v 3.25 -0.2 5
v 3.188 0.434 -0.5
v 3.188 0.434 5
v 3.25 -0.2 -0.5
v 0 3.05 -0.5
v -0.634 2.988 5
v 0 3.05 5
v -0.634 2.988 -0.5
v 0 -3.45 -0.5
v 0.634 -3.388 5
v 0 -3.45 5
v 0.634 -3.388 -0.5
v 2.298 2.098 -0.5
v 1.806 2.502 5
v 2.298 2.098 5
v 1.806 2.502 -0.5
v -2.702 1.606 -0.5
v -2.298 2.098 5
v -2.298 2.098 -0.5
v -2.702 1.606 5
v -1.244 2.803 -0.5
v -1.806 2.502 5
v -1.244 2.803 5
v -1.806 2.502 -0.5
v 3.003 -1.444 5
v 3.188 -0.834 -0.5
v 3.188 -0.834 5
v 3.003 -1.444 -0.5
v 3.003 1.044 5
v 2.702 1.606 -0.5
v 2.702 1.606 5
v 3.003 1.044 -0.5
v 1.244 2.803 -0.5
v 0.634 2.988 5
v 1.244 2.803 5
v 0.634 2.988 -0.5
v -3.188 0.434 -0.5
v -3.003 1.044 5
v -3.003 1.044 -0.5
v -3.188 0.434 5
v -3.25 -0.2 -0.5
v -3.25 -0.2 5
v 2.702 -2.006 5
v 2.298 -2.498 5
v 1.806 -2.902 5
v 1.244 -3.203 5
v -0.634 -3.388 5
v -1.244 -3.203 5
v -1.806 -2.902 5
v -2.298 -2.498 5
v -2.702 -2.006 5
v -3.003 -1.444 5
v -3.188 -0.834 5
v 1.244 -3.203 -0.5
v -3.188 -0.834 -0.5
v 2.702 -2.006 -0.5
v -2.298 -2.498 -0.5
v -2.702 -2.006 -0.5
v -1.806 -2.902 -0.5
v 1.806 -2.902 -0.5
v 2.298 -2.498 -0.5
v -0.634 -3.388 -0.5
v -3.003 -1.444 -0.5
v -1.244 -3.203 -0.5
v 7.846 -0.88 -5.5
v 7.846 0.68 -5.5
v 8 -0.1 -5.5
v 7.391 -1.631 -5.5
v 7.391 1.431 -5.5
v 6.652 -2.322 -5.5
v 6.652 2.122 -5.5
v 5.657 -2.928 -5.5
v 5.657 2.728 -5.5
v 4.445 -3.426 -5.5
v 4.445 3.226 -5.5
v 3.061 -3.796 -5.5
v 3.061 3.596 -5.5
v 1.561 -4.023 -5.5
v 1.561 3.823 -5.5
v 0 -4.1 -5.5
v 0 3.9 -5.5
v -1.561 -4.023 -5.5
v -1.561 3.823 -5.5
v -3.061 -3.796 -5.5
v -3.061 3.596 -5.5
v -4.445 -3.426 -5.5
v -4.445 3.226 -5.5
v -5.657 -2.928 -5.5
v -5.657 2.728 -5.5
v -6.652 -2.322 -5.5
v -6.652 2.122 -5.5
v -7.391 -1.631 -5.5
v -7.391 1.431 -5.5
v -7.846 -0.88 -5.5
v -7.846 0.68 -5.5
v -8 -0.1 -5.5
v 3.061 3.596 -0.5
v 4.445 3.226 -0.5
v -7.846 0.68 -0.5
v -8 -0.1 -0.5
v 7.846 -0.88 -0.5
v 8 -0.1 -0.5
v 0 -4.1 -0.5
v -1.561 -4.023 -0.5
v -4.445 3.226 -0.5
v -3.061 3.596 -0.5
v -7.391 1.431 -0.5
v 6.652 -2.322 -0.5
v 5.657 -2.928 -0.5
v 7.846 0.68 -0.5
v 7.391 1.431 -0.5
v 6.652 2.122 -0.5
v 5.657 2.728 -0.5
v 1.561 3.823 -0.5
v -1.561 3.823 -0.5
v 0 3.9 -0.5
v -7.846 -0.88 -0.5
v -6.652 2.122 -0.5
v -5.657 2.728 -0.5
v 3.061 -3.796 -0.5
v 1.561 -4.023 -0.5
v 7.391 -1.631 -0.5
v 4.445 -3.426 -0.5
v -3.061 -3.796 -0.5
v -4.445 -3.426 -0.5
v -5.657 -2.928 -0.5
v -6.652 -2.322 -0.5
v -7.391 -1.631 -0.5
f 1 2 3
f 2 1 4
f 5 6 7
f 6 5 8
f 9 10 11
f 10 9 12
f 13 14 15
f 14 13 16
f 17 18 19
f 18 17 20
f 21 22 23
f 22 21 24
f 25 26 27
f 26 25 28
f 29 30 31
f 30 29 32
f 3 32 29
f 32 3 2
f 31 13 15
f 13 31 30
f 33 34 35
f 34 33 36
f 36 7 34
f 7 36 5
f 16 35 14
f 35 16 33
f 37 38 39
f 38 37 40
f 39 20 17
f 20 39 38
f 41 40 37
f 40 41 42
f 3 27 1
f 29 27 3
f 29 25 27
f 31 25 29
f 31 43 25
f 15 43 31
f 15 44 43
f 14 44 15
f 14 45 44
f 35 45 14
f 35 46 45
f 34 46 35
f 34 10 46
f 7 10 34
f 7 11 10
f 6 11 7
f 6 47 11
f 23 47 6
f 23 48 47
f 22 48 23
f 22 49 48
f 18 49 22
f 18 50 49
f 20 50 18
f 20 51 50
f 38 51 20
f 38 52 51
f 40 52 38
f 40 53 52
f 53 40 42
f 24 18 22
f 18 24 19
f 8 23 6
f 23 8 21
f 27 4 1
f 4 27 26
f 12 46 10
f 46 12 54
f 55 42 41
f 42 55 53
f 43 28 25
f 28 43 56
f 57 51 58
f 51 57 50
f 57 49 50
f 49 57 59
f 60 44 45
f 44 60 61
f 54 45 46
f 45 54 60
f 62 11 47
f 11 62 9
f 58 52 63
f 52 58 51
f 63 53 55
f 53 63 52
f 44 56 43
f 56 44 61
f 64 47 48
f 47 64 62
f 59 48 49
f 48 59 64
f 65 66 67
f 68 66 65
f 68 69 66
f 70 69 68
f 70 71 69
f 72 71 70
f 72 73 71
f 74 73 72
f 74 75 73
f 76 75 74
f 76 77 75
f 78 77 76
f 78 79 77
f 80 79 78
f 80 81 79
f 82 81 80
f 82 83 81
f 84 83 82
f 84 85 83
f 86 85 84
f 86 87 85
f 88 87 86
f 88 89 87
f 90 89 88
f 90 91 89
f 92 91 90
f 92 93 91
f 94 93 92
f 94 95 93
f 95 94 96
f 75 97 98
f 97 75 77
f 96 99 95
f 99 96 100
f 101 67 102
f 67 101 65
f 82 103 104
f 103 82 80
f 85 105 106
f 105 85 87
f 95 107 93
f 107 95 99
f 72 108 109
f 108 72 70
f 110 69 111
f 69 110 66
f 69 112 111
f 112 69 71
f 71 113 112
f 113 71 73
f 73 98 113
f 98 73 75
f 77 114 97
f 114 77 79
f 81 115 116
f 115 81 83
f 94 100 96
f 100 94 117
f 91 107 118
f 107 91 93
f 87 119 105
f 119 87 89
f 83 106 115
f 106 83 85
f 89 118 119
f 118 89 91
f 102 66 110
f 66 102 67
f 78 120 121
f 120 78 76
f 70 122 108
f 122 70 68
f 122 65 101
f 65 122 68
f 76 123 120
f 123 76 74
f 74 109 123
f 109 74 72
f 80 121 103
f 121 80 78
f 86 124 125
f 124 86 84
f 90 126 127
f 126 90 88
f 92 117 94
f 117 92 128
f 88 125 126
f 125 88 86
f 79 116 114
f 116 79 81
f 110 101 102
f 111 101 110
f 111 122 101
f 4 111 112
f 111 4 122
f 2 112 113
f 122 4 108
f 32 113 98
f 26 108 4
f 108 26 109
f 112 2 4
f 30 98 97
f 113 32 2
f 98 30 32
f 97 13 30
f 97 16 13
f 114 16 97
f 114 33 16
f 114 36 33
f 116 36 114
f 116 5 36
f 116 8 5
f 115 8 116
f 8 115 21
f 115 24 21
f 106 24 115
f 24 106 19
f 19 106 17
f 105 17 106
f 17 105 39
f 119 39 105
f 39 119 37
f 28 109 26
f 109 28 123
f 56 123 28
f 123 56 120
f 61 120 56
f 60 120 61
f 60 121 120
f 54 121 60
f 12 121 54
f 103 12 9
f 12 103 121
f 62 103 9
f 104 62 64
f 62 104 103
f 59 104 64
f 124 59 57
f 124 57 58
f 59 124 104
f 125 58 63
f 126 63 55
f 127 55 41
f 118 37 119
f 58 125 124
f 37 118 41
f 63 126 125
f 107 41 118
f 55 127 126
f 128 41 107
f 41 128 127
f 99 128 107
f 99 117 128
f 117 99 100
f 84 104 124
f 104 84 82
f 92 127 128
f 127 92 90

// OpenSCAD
/* 
 * Copyright (c) 2017 by Paul-Louis Ageneau
 *
 * This program is free software: you can redistribute it and/or modify
 * it under the terms of the GNU General Public License as published by
 * the Free Software Foundation, either version 3 of the License, or
 * (at your option) any later version.
 *
 * This program is distributed in the hope that it will be useful,
 * but WITHOUT ANY WARRANTY; without even the implied warranty of
 * MERCHANTABILITY or FITNESS FOR A PARTICULAR PURPOSE.  See the
 * GNU General Public License for more details.
 *
 * You should have received a copy of the GNU General Public License
 * along with this program.  If not, see <http://www.gnu.org/licenses/>.
 */

$fn = 32;

union() {
    translate([0, -0.2, -2]) cylinder(h = 7, r = 3.25);
    scale([1, 0.5, 1]) translate([0, -0.2, -5.5]) cylinder(h = 5, r = 8);
}
